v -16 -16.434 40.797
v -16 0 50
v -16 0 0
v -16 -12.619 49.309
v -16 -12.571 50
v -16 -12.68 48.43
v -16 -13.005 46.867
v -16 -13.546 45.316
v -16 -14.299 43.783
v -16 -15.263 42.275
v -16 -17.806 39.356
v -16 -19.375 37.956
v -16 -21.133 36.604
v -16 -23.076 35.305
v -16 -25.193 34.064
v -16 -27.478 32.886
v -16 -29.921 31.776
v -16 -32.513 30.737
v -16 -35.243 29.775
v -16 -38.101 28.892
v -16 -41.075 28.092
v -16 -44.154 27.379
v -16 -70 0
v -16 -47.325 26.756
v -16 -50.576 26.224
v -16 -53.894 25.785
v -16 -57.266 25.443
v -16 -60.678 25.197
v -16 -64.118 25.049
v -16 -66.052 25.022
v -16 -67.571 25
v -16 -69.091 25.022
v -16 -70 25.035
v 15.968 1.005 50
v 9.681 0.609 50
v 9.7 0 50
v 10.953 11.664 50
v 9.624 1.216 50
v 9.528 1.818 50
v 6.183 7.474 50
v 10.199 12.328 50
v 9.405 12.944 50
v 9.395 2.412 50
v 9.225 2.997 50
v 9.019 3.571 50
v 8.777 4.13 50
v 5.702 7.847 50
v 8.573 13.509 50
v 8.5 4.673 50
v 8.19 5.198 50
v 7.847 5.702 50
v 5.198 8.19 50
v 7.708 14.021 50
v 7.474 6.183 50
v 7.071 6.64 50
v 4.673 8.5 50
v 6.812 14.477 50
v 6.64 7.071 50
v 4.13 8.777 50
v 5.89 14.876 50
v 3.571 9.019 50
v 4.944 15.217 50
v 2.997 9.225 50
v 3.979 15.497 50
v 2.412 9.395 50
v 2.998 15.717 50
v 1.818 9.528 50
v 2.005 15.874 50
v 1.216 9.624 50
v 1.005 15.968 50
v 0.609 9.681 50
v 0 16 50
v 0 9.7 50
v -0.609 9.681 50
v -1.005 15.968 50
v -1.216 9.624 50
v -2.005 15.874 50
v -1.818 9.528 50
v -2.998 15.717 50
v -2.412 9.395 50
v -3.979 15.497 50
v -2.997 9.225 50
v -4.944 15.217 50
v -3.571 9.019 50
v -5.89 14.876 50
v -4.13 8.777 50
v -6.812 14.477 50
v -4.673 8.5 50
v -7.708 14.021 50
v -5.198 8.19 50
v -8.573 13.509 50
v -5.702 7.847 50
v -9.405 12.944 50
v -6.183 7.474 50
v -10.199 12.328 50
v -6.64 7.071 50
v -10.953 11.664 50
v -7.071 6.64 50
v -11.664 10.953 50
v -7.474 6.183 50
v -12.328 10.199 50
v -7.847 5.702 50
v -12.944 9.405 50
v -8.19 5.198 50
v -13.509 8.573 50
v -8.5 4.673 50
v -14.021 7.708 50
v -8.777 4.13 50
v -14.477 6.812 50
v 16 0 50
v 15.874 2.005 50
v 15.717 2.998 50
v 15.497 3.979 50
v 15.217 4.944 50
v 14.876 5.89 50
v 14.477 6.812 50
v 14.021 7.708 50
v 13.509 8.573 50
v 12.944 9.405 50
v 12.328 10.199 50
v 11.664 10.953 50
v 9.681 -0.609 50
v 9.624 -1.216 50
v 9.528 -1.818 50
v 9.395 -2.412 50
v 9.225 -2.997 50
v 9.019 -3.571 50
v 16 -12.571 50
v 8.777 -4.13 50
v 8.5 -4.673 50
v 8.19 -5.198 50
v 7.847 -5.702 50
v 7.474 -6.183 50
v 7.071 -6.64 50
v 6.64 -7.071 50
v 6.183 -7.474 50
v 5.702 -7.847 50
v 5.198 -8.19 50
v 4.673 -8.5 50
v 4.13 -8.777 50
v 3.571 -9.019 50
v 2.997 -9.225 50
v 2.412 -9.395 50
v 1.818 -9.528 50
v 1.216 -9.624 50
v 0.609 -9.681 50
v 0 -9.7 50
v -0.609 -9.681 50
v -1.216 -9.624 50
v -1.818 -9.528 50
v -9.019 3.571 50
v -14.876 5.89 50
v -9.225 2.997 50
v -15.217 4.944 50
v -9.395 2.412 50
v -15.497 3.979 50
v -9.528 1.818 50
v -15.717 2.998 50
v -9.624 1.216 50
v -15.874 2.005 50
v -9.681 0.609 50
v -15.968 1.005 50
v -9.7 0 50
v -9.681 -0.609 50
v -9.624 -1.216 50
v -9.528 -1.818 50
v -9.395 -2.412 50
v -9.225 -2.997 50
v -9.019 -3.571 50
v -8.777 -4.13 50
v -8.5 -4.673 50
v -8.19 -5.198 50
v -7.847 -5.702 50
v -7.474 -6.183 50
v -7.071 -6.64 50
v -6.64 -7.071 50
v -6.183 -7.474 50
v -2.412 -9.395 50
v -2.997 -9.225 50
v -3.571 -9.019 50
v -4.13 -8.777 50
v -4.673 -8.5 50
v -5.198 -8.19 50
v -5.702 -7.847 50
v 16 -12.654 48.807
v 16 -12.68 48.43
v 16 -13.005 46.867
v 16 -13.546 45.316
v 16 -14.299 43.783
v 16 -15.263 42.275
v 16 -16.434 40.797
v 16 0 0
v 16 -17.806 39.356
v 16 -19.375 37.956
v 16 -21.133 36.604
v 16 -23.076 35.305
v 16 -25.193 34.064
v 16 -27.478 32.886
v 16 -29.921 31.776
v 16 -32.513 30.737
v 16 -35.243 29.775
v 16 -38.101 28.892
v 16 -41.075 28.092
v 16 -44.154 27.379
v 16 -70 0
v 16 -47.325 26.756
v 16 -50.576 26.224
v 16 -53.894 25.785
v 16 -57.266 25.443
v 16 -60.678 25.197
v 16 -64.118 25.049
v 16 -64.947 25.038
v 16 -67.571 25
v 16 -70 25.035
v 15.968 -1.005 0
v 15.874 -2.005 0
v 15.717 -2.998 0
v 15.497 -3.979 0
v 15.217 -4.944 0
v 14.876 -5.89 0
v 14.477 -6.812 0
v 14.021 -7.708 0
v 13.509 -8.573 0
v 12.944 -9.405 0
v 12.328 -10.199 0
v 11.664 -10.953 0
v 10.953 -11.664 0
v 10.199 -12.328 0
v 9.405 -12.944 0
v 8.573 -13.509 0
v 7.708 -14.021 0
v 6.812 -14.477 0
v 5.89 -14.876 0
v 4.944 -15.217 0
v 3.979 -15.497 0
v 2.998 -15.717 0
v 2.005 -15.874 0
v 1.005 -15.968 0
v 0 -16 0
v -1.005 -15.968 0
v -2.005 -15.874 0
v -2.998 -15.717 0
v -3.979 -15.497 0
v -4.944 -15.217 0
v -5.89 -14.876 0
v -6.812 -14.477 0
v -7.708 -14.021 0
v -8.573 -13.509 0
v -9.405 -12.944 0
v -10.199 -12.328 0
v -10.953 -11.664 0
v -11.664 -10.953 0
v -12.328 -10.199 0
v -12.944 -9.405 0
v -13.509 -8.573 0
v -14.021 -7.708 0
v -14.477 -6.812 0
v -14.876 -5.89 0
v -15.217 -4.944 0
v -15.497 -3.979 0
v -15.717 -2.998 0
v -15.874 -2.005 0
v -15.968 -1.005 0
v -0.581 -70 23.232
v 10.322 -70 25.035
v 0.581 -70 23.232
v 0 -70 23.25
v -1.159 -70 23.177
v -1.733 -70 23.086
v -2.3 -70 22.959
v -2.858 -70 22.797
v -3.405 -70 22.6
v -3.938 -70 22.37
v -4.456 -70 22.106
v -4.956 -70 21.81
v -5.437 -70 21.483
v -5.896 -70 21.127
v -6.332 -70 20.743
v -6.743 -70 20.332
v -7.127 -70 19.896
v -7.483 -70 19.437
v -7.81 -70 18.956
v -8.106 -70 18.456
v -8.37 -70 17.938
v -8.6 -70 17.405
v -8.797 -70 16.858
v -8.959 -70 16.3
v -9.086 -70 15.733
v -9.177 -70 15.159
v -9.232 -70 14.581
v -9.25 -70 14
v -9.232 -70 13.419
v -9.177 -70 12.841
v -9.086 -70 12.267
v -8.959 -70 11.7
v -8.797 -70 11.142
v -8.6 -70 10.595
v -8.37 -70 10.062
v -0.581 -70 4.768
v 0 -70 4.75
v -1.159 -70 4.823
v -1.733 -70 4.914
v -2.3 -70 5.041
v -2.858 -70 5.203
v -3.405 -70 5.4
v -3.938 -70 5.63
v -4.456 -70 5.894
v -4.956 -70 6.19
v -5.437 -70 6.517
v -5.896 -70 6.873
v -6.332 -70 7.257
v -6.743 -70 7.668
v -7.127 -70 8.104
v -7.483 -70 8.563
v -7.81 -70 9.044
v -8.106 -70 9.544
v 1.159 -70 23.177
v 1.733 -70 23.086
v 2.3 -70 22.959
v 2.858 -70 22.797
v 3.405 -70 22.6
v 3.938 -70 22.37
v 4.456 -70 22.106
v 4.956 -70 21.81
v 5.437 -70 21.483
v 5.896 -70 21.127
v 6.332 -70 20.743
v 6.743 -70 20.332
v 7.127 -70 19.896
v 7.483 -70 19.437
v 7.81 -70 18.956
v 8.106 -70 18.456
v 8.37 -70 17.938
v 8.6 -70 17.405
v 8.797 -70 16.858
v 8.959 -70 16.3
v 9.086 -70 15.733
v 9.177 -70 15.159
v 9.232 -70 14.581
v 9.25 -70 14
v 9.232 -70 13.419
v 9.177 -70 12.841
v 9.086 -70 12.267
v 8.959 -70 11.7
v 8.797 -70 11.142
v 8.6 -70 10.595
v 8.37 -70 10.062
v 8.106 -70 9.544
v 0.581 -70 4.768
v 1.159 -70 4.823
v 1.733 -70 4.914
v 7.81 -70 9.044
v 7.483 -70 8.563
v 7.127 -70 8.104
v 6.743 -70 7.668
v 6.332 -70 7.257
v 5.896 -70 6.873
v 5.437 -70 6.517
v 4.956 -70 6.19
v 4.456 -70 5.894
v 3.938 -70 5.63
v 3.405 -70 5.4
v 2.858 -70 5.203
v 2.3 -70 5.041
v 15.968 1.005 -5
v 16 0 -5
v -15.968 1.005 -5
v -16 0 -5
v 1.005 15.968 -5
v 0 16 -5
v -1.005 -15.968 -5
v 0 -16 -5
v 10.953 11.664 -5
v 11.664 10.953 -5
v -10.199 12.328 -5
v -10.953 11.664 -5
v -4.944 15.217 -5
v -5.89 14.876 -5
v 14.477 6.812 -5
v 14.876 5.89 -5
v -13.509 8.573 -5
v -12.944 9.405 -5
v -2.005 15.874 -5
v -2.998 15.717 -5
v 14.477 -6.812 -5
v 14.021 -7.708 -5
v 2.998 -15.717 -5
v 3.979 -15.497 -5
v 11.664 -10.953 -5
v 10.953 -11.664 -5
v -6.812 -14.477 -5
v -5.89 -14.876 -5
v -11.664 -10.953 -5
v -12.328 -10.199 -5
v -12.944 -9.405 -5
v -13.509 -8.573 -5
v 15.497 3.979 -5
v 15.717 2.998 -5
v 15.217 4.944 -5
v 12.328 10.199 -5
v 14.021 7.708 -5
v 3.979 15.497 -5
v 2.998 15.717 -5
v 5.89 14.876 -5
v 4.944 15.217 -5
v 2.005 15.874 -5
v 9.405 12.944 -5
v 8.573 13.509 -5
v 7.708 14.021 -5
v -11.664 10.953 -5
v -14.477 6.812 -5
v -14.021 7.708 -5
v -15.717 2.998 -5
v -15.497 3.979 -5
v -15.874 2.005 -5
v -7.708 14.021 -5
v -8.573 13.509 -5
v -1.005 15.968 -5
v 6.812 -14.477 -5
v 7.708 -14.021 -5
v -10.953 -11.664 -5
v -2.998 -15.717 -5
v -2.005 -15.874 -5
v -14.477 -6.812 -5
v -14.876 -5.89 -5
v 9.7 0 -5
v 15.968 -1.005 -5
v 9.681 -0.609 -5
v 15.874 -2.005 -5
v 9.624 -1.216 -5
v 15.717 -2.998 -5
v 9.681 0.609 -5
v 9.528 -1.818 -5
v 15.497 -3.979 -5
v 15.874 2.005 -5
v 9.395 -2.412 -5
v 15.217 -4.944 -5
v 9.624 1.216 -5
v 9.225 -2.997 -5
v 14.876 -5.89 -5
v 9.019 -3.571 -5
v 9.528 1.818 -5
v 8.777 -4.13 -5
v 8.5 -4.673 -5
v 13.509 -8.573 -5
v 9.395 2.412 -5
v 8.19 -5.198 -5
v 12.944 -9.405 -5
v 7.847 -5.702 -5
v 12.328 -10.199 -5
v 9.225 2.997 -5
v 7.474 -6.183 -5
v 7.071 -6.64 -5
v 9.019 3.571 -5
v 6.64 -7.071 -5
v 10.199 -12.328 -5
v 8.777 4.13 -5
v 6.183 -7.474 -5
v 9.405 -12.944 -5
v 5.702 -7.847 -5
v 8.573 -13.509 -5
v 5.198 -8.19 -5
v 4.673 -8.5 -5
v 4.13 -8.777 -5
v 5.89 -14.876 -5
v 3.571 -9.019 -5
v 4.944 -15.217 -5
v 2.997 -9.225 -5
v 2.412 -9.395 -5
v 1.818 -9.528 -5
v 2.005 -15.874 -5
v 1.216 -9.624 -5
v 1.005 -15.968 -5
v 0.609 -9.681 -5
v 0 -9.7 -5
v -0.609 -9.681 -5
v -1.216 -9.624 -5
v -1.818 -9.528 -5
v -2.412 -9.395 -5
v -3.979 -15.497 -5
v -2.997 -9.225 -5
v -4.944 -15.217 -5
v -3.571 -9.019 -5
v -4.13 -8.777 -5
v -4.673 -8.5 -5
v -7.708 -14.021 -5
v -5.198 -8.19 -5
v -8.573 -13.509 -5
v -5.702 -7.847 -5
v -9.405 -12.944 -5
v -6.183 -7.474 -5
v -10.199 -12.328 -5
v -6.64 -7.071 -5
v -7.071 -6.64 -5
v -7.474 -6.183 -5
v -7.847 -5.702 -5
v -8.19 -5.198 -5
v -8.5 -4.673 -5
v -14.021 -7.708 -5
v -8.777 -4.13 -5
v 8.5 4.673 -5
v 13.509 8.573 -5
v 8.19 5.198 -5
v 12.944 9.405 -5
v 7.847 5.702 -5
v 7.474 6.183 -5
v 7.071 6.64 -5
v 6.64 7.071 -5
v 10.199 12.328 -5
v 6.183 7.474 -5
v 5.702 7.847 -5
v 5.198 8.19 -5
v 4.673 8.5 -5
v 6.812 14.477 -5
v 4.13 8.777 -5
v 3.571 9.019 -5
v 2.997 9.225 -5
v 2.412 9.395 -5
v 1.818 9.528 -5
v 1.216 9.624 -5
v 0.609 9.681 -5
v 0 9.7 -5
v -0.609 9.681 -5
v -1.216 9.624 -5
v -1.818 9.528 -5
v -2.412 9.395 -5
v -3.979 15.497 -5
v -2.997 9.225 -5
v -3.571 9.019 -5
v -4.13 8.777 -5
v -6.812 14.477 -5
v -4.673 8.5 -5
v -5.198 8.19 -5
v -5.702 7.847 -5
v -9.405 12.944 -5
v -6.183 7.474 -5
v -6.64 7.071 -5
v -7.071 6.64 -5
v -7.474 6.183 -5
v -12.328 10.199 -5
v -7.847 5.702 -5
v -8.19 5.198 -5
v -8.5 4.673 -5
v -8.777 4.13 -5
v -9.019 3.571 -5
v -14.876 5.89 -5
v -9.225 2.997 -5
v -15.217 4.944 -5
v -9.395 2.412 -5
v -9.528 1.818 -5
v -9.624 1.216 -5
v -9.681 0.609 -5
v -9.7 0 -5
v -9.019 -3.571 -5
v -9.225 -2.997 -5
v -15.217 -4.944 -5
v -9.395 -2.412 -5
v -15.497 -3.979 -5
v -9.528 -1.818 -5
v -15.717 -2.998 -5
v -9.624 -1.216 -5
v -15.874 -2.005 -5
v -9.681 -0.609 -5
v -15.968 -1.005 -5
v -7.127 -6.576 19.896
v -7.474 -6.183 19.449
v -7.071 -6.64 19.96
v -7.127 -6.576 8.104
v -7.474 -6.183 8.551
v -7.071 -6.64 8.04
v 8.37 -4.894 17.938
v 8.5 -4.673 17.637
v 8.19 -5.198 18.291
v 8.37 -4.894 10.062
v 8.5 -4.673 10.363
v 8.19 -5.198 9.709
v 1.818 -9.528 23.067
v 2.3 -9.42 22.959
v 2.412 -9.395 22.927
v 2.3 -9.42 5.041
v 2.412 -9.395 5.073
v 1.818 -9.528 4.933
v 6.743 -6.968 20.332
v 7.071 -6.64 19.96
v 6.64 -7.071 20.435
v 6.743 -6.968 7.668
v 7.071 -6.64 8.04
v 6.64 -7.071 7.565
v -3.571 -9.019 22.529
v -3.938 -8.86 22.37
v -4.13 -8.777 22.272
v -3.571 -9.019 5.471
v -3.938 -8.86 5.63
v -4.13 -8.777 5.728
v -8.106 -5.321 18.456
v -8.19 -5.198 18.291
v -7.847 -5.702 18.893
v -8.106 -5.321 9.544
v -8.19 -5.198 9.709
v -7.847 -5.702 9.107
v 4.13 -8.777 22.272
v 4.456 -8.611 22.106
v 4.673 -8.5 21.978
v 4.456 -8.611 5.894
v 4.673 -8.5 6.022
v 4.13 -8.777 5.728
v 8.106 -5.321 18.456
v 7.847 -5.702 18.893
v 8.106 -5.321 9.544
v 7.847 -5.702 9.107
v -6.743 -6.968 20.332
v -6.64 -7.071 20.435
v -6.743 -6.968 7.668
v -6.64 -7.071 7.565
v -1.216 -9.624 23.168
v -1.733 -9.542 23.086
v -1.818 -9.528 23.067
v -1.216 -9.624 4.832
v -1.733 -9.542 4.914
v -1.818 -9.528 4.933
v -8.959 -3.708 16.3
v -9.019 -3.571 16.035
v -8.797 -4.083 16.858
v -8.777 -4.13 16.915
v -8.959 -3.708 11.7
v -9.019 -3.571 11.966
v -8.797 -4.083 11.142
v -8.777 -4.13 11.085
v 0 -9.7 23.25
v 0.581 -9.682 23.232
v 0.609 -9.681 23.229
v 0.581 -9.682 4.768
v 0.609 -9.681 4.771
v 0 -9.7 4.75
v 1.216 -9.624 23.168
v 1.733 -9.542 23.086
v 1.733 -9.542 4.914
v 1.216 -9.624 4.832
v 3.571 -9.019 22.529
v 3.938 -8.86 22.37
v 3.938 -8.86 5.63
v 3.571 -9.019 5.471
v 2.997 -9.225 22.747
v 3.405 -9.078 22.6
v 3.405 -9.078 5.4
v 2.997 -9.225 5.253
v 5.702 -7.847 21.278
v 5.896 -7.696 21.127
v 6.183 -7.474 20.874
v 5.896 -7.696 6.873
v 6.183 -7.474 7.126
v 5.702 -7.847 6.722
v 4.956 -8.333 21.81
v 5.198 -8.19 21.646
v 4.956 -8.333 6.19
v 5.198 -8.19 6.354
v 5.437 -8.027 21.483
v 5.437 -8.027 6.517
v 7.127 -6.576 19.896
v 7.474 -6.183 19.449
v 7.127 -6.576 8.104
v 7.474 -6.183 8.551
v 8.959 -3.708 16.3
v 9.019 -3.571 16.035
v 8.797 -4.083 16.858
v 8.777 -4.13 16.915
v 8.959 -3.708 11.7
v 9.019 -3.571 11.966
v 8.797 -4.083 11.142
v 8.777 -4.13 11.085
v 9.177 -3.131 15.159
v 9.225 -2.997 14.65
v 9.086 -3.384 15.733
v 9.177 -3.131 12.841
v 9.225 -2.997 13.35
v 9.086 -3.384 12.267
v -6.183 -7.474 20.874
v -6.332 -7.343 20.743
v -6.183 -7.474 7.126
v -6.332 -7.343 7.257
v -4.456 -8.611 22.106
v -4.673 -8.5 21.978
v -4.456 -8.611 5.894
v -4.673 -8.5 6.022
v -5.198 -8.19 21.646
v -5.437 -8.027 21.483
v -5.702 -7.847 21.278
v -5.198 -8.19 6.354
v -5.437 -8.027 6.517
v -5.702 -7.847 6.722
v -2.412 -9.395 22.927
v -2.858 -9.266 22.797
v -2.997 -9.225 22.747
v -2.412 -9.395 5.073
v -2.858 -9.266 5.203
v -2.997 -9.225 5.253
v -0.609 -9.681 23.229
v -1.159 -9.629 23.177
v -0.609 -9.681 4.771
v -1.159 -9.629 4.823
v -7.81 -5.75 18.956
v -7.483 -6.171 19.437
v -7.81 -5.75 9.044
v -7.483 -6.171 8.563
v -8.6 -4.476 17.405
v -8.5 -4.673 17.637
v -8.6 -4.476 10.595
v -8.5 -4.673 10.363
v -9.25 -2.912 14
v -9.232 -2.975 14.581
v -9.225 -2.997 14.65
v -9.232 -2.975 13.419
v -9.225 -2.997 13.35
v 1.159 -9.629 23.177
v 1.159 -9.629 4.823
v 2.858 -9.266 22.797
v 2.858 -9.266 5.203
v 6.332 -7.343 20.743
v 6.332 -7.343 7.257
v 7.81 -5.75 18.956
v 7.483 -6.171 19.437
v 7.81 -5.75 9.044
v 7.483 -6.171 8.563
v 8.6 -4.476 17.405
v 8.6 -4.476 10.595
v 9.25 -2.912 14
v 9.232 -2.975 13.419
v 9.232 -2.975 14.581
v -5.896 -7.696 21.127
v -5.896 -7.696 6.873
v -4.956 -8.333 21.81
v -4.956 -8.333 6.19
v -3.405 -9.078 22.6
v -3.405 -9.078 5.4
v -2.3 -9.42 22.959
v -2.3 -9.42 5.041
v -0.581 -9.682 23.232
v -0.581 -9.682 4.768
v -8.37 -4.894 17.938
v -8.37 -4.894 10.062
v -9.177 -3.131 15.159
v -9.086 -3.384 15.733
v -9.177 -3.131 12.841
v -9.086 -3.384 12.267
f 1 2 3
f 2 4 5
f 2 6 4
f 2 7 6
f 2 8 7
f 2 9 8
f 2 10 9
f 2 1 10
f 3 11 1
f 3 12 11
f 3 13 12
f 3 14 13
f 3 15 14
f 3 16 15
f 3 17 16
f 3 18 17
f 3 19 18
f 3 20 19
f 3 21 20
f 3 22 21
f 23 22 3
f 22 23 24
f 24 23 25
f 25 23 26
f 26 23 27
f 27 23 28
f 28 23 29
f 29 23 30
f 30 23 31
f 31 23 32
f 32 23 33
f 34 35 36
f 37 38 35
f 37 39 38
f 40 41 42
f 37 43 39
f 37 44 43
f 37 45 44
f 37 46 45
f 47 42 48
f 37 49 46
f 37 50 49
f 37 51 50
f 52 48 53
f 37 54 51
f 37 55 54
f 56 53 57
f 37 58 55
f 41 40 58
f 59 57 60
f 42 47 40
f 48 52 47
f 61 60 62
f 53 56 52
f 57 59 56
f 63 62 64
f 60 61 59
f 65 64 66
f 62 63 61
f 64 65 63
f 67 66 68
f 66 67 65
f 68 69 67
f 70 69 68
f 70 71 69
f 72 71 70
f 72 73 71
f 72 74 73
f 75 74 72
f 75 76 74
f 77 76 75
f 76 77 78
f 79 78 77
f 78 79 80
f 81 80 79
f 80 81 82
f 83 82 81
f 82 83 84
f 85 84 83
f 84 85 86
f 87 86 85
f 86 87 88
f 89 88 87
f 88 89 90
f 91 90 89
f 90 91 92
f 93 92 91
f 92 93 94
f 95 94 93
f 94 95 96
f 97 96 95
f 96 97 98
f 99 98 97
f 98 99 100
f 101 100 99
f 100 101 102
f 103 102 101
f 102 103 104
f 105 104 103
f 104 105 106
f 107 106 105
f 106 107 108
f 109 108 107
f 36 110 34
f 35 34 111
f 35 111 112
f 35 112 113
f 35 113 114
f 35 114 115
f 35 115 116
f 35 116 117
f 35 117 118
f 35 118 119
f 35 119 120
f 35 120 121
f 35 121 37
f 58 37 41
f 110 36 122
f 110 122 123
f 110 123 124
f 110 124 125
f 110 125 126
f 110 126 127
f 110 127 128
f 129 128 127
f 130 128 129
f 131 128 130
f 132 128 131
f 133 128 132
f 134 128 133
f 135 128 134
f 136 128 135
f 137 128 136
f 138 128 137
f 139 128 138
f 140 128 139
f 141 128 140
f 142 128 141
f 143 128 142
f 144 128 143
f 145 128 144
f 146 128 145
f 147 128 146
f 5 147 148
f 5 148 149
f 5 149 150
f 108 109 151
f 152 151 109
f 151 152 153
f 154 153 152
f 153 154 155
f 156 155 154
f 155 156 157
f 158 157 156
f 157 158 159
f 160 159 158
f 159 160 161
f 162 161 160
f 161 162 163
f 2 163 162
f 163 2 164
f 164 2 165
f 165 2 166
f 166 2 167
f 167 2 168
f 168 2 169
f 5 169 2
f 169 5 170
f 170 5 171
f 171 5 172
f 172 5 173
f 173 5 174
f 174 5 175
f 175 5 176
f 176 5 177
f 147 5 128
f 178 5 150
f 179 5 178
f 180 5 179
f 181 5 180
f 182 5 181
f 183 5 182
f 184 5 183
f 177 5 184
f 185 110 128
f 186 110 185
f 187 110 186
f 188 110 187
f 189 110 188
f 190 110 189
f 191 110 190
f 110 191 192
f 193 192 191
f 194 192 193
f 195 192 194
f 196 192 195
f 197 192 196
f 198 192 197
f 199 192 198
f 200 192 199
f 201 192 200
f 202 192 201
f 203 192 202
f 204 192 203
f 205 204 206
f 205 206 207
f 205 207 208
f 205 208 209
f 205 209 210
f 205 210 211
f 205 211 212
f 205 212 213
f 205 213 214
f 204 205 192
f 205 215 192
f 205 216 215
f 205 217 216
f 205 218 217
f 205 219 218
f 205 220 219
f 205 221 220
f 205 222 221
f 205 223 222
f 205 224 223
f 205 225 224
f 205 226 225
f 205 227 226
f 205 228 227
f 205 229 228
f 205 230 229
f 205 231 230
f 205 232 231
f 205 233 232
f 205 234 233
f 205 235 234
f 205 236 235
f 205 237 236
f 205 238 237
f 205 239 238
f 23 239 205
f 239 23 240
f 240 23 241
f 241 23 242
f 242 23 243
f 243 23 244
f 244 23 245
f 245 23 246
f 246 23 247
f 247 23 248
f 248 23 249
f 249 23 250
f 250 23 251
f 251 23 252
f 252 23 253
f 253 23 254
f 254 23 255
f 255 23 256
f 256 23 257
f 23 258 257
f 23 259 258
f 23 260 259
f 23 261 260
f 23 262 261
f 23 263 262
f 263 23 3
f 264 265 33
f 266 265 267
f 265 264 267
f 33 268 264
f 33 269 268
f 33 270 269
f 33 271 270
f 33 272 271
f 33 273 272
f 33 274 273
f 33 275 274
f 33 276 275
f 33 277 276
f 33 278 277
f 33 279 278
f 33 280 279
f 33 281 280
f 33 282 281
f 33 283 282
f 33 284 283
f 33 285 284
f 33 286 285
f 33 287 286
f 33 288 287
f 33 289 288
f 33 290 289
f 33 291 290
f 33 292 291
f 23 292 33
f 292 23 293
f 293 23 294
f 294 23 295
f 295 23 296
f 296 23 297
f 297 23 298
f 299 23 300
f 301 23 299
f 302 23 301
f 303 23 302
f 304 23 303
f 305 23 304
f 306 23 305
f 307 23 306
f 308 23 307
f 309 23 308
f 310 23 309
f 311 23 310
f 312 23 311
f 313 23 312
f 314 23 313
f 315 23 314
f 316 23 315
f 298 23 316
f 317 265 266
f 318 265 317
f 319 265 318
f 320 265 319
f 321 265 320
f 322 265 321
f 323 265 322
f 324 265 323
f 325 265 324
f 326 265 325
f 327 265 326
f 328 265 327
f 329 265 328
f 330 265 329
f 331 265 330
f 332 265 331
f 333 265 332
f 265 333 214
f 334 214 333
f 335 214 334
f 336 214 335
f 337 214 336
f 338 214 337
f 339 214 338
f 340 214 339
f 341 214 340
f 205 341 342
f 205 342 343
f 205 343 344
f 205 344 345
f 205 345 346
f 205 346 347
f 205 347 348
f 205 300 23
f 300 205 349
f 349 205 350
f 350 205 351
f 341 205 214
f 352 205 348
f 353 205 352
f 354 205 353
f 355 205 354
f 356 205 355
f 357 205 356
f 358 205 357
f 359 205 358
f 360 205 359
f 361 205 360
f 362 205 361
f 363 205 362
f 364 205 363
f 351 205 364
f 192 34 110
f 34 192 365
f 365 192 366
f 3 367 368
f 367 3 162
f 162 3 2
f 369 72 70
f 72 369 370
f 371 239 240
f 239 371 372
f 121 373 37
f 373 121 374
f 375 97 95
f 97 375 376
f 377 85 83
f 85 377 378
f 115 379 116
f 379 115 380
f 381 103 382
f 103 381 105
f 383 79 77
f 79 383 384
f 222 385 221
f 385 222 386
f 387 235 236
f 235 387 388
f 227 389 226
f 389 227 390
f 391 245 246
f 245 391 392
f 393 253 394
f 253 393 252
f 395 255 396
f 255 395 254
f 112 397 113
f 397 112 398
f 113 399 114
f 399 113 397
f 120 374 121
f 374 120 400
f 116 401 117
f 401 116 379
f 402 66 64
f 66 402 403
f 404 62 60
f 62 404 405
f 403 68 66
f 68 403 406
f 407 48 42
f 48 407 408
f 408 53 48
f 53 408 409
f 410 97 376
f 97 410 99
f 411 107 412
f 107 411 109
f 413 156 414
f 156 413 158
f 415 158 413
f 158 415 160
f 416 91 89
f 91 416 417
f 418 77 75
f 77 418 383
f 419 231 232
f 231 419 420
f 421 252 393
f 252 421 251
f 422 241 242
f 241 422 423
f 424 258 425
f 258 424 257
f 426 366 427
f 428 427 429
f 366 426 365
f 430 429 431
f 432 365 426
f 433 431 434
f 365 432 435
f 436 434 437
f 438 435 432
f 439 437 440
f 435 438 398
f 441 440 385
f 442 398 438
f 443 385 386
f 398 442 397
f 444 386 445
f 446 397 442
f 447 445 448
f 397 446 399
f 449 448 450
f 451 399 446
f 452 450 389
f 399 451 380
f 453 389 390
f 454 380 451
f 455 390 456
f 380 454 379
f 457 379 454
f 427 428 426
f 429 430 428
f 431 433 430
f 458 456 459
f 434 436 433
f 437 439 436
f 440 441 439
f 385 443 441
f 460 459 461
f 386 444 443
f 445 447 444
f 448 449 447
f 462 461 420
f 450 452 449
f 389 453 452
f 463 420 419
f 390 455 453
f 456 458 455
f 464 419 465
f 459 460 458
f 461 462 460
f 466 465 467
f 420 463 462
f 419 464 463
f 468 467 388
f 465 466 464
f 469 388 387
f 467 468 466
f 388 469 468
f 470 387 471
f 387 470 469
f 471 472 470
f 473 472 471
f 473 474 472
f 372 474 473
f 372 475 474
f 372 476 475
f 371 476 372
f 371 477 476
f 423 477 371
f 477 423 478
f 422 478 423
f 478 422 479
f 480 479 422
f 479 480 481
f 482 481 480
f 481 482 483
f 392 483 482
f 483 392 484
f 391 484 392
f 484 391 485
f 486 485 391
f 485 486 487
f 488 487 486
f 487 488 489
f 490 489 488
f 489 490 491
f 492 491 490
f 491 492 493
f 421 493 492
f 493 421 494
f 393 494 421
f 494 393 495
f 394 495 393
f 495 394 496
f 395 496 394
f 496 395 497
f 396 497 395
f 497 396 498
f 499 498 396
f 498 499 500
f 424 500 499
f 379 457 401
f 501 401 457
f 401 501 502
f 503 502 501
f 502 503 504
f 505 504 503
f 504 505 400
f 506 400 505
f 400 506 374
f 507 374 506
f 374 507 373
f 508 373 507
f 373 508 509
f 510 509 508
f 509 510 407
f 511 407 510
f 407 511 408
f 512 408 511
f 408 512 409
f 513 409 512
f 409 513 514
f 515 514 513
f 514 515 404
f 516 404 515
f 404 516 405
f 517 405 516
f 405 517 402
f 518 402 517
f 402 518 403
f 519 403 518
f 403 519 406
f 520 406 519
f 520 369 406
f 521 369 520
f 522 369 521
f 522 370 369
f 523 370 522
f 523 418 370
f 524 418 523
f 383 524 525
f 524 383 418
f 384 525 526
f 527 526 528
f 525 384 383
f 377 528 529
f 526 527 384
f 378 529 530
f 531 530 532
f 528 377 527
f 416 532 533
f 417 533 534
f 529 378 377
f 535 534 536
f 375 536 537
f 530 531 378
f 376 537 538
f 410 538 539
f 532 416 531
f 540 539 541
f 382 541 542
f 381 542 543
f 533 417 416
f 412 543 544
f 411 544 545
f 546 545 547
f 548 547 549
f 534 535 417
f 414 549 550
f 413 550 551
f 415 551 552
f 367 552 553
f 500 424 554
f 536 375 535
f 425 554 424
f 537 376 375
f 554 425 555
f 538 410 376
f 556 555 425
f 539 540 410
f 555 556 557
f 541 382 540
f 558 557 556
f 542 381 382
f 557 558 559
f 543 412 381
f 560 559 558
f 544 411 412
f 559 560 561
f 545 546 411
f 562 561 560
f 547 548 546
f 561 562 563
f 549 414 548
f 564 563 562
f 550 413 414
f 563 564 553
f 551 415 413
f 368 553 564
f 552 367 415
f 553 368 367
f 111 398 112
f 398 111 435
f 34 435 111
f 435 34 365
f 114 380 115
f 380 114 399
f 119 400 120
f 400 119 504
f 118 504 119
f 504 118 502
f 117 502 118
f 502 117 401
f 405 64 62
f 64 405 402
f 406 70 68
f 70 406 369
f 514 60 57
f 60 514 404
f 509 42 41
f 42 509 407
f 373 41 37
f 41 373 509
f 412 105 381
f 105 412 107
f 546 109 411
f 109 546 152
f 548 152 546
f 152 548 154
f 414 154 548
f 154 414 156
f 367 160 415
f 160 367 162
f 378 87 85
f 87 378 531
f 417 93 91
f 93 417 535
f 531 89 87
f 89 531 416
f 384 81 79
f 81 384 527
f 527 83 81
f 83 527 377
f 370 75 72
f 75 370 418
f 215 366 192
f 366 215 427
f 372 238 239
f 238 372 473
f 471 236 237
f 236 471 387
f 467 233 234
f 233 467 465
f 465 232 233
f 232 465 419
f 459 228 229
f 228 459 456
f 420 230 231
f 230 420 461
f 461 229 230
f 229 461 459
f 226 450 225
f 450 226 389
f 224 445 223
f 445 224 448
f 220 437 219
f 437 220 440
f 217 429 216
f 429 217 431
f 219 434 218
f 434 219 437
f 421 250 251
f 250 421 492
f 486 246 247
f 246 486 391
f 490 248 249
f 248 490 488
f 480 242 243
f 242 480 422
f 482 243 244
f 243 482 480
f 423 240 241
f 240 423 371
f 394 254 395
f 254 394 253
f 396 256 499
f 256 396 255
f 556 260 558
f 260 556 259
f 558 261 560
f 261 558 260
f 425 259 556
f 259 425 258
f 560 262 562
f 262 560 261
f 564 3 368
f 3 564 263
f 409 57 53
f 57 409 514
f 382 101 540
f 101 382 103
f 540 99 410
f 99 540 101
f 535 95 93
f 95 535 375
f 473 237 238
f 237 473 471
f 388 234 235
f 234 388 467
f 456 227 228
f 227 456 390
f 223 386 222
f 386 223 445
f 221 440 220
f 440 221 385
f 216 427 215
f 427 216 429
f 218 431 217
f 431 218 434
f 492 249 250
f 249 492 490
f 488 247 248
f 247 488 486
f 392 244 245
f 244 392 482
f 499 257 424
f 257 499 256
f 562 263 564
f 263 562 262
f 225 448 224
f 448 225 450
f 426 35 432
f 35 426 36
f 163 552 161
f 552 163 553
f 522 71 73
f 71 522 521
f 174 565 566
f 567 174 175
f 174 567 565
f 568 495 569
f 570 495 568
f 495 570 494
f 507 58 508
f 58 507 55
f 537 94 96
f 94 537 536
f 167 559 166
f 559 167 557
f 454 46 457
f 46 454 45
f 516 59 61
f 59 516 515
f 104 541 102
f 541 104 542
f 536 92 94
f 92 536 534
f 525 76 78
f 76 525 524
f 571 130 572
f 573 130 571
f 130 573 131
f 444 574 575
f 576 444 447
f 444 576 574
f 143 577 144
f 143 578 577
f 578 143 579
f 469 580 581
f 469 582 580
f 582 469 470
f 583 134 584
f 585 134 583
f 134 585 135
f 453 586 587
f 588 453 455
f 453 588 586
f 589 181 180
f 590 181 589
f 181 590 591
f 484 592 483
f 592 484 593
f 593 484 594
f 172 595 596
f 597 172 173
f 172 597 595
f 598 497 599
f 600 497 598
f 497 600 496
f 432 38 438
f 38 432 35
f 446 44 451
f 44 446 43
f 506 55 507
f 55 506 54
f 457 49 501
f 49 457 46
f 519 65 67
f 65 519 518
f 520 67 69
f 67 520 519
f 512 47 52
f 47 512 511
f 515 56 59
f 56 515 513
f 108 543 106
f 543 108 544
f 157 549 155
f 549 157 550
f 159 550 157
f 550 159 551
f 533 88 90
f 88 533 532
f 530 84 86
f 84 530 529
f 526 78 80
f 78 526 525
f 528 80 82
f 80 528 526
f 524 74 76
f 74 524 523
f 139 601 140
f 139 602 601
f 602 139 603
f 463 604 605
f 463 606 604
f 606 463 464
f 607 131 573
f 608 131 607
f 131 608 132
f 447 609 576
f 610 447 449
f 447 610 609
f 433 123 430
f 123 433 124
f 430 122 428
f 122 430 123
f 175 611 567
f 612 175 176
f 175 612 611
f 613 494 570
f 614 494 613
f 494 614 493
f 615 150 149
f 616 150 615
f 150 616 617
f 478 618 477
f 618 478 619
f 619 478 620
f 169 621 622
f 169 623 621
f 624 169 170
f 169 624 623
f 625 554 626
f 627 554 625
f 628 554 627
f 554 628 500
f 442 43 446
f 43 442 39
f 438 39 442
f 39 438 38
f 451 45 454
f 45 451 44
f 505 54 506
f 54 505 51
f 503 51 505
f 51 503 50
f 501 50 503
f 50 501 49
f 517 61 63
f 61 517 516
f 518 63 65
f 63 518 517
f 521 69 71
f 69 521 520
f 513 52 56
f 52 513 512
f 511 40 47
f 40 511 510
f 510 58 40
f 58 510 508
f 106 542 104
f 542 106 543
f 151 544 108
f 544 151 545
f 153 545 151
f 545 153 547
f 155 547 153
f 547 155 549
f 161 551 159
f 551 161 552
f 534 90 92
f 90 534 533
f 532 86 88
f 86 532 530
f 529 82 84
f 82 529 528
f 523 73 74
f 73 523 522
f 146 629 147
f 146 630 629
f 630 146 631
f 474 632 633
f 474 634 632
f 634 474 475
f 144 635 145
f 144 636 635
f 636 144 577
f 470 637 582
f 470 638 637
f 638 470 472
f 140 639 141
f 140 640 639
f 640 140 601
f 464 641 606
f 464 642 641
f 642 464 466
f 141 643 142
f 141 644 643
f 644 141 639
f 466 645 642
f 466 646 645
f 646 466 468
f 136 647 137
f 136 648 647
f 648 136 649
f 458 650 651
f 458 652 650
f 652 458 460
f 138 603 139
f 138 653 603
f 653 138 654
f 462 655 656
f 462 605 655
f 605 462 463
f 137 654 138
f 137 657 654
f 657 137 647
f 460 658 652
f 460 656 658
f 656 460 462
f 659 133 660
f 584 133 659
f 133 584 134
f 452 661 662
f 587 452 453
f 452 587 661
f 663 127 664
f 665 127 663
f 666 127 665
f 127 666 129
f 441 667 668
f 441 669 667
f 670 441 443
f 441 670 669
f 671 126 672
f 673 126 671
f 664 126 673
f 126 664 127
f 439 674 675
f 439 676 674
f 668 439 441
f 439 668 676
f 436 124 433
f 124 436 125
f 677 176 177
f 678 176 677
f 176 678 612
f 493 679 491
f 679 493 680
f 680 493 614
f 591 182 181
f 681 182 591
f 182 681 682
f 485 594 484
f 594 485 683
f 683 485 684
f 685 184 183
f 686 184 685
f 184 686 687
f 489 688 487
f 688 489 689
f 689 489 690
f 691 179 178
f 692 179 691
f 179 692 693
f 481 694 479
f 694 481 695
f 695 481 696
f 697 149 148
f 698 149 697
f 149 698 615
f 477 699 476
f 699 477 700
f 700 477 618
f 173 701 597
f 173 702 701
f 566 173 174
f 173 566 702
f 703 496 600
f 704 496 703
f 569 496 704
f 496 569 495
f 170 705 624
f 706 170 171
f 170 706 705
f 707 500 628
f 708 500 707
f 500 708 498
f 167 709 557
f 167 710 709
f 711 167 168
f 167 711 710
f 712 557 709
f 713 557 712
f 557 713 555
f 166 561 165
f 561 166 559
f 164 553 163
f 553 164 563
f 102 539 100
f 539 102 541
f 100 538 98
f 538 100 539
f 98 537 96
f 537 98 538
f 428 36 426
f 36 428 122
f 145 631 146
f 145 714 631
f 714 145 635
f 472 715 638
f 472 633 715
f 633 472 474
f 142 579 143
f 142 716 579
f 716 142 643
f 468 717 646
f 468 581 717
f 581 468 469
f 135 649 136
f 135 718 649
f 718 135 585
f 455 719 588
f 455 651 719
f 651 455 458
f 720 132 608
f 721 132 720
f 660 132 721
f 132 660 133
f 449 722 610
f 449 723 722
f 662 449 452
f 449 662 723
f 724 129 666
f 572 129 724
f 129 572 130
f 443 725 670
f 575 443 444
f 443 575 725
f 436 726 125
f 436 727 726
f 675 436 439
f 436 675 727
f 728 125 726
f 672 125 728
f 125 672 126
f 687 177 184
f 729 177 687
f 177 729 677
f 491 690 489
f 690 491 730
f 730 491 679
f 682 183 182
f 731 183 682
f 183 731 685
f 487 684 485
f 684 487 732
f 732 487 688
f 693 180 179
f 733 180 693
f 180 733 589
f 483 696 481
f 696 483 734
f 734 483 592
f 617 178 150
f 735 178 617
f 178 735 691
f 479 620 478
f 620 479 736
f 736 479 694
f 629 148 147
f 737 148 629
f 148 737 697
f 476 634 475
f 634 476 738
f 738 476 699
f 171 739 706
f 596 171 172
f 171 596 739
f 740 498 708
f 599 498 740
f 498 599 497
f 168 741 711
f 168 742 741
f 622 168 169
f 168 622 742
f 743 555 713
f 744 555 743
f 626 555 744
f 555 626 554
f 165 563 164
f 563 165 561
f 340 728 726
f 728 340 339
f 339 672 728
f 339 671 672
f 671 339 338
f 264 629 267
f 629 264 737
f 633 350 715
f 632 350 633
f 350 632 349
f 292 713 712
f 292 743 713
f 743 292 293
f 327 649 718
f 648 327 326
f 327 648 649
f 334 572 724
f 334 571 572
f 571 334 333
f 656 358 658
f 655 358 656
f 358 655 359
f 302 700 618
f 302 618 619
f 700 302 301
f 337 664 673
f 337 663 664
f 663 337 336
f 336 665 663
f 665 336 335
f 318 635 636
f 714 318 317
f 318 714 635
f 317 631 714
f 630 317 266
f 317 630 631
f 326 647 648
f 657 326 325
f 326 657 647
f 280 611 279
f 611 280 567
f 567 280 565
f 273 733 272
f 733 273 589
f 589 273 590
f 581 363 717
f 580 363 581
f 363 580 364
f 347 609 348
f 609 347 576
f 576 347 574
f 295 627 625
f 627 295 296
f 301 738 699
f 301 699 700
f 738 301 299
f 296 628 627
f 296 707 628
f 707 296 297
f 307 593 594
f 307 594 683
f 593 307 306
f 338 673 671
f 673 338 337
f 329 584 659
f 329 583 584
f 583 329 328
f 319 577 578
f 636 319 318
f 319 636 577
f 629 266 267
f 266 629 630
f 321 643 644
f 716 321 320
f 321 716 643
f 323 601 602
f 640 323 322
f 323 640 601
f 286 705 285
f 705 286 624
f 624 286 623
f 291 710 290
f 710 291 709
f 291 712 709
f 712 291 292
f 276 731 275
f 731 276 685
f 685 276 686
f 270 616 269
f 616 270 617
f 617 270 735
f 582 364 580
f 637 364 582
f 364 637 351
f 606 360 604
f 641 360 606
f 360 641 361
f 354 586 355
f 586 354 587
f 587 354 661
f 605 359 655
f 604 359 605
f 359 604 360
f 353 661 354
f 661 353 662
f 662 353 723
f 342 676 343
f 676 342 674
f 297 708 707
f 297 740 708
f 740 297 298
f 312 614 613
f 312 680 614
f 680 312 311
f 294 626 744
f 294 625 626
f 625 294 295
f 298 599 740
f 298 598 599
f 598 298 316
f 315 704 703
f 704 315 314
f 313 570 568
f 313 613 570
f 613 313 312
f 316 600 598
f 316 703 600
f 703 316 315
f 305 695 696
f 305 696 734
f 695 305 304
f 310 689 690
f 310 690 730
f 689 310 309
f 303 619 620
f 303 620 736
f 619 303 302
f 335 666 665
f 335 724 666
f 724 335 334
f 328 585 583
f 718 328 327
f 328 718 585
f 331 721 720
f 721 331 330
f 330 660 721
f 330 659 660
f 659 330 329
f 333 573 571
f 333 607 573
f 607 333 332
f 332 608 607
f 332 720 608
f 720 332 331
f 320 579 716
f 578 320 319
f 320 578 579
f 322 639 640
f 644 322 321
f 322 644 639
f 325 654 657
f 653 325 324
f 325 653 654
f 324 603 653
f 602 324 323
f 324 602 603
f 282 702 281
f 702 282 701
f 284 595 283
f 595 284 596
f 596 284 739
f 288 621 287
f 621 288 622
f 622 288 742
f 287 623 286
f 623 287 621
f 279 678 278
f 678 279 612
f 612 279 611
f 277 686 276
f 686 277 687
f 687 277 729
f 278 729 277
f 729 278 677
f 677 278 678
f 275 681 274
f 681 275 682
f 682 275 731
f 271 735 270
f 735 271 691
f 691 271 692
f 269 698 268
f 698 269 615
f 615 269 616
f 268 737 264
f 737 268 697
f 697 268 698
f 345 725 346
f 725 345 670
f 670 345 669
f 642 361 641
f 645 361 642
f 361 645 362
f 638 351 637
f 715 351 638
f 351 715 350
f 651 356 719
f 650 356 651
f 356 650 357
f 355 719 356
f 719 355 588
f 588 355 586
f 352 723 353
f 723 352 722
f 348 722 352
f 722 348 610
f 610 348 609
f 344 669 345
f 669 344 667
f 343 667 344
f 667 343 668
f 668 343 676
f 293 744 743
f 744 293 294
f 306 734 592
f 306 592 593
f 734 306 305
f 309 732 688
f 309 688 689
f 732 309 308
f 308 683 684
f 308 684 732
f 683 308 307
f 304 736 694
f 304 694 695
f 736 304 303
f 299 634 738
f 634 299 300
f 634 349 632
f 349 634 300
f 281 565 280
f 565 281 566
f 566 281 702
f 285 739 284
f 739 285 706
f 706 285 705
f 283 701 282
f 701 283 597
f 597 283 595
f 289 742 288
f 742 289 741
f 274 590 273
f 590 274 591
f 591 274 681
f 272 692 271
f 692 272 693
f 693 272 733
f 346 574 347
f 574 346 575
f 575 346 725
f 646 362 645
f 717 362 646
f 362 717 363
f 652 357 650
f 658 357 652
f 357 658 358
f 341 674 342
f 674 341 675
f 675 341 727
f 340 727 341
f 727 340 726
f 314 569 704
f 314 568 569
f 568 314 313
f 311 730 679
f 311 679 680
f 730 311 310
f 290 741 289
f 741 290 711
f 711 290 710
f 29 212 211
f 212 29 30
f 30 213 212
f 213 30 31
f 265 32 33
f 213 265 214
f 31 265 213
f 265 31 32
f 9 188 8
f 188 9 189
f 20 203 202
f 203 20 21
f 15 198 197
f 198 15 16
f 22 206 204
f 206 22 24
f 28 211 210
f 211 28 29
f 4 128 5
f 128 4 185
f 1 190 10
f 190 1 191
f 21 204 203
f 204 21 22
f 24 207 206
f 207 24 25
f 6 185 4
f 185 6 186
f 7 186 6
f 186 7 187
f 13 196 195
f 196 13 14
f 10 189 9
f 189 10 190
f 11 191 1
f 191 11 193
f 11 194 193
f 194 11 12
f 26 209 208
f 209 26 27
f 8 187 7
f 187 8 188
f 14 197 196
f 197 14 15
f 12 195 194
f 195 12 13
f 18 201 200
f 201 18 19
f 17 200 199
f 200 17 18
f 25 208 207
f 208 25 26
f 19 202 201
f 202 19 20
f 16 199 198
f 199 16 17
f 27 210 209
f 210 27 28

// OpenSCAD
$fn=100;



difference(){
    solidmodel();
    translate([0,0,-6])
    cylinder(57,9.7,9.7);
    translate([0,0,14]){
        rotate([90,0,0])
            translate([0,0,-1])
                cylinder(72,9.25,9.25);
    }
    resize([100,110,50])
        translate([-30,-43,70])
            rotate([0,90,0])
                cylinder(50,35,35);


}



/*
difference(){

    translate([0,0,-1])
    cylinder(52,9.5,9.5);
}
*/

module solidmodel(){
    translate([-16,-70,0])
        cube([32,70,50]);   
    translate([0,0,-5])
    cylinder(55,16,16);

    }
